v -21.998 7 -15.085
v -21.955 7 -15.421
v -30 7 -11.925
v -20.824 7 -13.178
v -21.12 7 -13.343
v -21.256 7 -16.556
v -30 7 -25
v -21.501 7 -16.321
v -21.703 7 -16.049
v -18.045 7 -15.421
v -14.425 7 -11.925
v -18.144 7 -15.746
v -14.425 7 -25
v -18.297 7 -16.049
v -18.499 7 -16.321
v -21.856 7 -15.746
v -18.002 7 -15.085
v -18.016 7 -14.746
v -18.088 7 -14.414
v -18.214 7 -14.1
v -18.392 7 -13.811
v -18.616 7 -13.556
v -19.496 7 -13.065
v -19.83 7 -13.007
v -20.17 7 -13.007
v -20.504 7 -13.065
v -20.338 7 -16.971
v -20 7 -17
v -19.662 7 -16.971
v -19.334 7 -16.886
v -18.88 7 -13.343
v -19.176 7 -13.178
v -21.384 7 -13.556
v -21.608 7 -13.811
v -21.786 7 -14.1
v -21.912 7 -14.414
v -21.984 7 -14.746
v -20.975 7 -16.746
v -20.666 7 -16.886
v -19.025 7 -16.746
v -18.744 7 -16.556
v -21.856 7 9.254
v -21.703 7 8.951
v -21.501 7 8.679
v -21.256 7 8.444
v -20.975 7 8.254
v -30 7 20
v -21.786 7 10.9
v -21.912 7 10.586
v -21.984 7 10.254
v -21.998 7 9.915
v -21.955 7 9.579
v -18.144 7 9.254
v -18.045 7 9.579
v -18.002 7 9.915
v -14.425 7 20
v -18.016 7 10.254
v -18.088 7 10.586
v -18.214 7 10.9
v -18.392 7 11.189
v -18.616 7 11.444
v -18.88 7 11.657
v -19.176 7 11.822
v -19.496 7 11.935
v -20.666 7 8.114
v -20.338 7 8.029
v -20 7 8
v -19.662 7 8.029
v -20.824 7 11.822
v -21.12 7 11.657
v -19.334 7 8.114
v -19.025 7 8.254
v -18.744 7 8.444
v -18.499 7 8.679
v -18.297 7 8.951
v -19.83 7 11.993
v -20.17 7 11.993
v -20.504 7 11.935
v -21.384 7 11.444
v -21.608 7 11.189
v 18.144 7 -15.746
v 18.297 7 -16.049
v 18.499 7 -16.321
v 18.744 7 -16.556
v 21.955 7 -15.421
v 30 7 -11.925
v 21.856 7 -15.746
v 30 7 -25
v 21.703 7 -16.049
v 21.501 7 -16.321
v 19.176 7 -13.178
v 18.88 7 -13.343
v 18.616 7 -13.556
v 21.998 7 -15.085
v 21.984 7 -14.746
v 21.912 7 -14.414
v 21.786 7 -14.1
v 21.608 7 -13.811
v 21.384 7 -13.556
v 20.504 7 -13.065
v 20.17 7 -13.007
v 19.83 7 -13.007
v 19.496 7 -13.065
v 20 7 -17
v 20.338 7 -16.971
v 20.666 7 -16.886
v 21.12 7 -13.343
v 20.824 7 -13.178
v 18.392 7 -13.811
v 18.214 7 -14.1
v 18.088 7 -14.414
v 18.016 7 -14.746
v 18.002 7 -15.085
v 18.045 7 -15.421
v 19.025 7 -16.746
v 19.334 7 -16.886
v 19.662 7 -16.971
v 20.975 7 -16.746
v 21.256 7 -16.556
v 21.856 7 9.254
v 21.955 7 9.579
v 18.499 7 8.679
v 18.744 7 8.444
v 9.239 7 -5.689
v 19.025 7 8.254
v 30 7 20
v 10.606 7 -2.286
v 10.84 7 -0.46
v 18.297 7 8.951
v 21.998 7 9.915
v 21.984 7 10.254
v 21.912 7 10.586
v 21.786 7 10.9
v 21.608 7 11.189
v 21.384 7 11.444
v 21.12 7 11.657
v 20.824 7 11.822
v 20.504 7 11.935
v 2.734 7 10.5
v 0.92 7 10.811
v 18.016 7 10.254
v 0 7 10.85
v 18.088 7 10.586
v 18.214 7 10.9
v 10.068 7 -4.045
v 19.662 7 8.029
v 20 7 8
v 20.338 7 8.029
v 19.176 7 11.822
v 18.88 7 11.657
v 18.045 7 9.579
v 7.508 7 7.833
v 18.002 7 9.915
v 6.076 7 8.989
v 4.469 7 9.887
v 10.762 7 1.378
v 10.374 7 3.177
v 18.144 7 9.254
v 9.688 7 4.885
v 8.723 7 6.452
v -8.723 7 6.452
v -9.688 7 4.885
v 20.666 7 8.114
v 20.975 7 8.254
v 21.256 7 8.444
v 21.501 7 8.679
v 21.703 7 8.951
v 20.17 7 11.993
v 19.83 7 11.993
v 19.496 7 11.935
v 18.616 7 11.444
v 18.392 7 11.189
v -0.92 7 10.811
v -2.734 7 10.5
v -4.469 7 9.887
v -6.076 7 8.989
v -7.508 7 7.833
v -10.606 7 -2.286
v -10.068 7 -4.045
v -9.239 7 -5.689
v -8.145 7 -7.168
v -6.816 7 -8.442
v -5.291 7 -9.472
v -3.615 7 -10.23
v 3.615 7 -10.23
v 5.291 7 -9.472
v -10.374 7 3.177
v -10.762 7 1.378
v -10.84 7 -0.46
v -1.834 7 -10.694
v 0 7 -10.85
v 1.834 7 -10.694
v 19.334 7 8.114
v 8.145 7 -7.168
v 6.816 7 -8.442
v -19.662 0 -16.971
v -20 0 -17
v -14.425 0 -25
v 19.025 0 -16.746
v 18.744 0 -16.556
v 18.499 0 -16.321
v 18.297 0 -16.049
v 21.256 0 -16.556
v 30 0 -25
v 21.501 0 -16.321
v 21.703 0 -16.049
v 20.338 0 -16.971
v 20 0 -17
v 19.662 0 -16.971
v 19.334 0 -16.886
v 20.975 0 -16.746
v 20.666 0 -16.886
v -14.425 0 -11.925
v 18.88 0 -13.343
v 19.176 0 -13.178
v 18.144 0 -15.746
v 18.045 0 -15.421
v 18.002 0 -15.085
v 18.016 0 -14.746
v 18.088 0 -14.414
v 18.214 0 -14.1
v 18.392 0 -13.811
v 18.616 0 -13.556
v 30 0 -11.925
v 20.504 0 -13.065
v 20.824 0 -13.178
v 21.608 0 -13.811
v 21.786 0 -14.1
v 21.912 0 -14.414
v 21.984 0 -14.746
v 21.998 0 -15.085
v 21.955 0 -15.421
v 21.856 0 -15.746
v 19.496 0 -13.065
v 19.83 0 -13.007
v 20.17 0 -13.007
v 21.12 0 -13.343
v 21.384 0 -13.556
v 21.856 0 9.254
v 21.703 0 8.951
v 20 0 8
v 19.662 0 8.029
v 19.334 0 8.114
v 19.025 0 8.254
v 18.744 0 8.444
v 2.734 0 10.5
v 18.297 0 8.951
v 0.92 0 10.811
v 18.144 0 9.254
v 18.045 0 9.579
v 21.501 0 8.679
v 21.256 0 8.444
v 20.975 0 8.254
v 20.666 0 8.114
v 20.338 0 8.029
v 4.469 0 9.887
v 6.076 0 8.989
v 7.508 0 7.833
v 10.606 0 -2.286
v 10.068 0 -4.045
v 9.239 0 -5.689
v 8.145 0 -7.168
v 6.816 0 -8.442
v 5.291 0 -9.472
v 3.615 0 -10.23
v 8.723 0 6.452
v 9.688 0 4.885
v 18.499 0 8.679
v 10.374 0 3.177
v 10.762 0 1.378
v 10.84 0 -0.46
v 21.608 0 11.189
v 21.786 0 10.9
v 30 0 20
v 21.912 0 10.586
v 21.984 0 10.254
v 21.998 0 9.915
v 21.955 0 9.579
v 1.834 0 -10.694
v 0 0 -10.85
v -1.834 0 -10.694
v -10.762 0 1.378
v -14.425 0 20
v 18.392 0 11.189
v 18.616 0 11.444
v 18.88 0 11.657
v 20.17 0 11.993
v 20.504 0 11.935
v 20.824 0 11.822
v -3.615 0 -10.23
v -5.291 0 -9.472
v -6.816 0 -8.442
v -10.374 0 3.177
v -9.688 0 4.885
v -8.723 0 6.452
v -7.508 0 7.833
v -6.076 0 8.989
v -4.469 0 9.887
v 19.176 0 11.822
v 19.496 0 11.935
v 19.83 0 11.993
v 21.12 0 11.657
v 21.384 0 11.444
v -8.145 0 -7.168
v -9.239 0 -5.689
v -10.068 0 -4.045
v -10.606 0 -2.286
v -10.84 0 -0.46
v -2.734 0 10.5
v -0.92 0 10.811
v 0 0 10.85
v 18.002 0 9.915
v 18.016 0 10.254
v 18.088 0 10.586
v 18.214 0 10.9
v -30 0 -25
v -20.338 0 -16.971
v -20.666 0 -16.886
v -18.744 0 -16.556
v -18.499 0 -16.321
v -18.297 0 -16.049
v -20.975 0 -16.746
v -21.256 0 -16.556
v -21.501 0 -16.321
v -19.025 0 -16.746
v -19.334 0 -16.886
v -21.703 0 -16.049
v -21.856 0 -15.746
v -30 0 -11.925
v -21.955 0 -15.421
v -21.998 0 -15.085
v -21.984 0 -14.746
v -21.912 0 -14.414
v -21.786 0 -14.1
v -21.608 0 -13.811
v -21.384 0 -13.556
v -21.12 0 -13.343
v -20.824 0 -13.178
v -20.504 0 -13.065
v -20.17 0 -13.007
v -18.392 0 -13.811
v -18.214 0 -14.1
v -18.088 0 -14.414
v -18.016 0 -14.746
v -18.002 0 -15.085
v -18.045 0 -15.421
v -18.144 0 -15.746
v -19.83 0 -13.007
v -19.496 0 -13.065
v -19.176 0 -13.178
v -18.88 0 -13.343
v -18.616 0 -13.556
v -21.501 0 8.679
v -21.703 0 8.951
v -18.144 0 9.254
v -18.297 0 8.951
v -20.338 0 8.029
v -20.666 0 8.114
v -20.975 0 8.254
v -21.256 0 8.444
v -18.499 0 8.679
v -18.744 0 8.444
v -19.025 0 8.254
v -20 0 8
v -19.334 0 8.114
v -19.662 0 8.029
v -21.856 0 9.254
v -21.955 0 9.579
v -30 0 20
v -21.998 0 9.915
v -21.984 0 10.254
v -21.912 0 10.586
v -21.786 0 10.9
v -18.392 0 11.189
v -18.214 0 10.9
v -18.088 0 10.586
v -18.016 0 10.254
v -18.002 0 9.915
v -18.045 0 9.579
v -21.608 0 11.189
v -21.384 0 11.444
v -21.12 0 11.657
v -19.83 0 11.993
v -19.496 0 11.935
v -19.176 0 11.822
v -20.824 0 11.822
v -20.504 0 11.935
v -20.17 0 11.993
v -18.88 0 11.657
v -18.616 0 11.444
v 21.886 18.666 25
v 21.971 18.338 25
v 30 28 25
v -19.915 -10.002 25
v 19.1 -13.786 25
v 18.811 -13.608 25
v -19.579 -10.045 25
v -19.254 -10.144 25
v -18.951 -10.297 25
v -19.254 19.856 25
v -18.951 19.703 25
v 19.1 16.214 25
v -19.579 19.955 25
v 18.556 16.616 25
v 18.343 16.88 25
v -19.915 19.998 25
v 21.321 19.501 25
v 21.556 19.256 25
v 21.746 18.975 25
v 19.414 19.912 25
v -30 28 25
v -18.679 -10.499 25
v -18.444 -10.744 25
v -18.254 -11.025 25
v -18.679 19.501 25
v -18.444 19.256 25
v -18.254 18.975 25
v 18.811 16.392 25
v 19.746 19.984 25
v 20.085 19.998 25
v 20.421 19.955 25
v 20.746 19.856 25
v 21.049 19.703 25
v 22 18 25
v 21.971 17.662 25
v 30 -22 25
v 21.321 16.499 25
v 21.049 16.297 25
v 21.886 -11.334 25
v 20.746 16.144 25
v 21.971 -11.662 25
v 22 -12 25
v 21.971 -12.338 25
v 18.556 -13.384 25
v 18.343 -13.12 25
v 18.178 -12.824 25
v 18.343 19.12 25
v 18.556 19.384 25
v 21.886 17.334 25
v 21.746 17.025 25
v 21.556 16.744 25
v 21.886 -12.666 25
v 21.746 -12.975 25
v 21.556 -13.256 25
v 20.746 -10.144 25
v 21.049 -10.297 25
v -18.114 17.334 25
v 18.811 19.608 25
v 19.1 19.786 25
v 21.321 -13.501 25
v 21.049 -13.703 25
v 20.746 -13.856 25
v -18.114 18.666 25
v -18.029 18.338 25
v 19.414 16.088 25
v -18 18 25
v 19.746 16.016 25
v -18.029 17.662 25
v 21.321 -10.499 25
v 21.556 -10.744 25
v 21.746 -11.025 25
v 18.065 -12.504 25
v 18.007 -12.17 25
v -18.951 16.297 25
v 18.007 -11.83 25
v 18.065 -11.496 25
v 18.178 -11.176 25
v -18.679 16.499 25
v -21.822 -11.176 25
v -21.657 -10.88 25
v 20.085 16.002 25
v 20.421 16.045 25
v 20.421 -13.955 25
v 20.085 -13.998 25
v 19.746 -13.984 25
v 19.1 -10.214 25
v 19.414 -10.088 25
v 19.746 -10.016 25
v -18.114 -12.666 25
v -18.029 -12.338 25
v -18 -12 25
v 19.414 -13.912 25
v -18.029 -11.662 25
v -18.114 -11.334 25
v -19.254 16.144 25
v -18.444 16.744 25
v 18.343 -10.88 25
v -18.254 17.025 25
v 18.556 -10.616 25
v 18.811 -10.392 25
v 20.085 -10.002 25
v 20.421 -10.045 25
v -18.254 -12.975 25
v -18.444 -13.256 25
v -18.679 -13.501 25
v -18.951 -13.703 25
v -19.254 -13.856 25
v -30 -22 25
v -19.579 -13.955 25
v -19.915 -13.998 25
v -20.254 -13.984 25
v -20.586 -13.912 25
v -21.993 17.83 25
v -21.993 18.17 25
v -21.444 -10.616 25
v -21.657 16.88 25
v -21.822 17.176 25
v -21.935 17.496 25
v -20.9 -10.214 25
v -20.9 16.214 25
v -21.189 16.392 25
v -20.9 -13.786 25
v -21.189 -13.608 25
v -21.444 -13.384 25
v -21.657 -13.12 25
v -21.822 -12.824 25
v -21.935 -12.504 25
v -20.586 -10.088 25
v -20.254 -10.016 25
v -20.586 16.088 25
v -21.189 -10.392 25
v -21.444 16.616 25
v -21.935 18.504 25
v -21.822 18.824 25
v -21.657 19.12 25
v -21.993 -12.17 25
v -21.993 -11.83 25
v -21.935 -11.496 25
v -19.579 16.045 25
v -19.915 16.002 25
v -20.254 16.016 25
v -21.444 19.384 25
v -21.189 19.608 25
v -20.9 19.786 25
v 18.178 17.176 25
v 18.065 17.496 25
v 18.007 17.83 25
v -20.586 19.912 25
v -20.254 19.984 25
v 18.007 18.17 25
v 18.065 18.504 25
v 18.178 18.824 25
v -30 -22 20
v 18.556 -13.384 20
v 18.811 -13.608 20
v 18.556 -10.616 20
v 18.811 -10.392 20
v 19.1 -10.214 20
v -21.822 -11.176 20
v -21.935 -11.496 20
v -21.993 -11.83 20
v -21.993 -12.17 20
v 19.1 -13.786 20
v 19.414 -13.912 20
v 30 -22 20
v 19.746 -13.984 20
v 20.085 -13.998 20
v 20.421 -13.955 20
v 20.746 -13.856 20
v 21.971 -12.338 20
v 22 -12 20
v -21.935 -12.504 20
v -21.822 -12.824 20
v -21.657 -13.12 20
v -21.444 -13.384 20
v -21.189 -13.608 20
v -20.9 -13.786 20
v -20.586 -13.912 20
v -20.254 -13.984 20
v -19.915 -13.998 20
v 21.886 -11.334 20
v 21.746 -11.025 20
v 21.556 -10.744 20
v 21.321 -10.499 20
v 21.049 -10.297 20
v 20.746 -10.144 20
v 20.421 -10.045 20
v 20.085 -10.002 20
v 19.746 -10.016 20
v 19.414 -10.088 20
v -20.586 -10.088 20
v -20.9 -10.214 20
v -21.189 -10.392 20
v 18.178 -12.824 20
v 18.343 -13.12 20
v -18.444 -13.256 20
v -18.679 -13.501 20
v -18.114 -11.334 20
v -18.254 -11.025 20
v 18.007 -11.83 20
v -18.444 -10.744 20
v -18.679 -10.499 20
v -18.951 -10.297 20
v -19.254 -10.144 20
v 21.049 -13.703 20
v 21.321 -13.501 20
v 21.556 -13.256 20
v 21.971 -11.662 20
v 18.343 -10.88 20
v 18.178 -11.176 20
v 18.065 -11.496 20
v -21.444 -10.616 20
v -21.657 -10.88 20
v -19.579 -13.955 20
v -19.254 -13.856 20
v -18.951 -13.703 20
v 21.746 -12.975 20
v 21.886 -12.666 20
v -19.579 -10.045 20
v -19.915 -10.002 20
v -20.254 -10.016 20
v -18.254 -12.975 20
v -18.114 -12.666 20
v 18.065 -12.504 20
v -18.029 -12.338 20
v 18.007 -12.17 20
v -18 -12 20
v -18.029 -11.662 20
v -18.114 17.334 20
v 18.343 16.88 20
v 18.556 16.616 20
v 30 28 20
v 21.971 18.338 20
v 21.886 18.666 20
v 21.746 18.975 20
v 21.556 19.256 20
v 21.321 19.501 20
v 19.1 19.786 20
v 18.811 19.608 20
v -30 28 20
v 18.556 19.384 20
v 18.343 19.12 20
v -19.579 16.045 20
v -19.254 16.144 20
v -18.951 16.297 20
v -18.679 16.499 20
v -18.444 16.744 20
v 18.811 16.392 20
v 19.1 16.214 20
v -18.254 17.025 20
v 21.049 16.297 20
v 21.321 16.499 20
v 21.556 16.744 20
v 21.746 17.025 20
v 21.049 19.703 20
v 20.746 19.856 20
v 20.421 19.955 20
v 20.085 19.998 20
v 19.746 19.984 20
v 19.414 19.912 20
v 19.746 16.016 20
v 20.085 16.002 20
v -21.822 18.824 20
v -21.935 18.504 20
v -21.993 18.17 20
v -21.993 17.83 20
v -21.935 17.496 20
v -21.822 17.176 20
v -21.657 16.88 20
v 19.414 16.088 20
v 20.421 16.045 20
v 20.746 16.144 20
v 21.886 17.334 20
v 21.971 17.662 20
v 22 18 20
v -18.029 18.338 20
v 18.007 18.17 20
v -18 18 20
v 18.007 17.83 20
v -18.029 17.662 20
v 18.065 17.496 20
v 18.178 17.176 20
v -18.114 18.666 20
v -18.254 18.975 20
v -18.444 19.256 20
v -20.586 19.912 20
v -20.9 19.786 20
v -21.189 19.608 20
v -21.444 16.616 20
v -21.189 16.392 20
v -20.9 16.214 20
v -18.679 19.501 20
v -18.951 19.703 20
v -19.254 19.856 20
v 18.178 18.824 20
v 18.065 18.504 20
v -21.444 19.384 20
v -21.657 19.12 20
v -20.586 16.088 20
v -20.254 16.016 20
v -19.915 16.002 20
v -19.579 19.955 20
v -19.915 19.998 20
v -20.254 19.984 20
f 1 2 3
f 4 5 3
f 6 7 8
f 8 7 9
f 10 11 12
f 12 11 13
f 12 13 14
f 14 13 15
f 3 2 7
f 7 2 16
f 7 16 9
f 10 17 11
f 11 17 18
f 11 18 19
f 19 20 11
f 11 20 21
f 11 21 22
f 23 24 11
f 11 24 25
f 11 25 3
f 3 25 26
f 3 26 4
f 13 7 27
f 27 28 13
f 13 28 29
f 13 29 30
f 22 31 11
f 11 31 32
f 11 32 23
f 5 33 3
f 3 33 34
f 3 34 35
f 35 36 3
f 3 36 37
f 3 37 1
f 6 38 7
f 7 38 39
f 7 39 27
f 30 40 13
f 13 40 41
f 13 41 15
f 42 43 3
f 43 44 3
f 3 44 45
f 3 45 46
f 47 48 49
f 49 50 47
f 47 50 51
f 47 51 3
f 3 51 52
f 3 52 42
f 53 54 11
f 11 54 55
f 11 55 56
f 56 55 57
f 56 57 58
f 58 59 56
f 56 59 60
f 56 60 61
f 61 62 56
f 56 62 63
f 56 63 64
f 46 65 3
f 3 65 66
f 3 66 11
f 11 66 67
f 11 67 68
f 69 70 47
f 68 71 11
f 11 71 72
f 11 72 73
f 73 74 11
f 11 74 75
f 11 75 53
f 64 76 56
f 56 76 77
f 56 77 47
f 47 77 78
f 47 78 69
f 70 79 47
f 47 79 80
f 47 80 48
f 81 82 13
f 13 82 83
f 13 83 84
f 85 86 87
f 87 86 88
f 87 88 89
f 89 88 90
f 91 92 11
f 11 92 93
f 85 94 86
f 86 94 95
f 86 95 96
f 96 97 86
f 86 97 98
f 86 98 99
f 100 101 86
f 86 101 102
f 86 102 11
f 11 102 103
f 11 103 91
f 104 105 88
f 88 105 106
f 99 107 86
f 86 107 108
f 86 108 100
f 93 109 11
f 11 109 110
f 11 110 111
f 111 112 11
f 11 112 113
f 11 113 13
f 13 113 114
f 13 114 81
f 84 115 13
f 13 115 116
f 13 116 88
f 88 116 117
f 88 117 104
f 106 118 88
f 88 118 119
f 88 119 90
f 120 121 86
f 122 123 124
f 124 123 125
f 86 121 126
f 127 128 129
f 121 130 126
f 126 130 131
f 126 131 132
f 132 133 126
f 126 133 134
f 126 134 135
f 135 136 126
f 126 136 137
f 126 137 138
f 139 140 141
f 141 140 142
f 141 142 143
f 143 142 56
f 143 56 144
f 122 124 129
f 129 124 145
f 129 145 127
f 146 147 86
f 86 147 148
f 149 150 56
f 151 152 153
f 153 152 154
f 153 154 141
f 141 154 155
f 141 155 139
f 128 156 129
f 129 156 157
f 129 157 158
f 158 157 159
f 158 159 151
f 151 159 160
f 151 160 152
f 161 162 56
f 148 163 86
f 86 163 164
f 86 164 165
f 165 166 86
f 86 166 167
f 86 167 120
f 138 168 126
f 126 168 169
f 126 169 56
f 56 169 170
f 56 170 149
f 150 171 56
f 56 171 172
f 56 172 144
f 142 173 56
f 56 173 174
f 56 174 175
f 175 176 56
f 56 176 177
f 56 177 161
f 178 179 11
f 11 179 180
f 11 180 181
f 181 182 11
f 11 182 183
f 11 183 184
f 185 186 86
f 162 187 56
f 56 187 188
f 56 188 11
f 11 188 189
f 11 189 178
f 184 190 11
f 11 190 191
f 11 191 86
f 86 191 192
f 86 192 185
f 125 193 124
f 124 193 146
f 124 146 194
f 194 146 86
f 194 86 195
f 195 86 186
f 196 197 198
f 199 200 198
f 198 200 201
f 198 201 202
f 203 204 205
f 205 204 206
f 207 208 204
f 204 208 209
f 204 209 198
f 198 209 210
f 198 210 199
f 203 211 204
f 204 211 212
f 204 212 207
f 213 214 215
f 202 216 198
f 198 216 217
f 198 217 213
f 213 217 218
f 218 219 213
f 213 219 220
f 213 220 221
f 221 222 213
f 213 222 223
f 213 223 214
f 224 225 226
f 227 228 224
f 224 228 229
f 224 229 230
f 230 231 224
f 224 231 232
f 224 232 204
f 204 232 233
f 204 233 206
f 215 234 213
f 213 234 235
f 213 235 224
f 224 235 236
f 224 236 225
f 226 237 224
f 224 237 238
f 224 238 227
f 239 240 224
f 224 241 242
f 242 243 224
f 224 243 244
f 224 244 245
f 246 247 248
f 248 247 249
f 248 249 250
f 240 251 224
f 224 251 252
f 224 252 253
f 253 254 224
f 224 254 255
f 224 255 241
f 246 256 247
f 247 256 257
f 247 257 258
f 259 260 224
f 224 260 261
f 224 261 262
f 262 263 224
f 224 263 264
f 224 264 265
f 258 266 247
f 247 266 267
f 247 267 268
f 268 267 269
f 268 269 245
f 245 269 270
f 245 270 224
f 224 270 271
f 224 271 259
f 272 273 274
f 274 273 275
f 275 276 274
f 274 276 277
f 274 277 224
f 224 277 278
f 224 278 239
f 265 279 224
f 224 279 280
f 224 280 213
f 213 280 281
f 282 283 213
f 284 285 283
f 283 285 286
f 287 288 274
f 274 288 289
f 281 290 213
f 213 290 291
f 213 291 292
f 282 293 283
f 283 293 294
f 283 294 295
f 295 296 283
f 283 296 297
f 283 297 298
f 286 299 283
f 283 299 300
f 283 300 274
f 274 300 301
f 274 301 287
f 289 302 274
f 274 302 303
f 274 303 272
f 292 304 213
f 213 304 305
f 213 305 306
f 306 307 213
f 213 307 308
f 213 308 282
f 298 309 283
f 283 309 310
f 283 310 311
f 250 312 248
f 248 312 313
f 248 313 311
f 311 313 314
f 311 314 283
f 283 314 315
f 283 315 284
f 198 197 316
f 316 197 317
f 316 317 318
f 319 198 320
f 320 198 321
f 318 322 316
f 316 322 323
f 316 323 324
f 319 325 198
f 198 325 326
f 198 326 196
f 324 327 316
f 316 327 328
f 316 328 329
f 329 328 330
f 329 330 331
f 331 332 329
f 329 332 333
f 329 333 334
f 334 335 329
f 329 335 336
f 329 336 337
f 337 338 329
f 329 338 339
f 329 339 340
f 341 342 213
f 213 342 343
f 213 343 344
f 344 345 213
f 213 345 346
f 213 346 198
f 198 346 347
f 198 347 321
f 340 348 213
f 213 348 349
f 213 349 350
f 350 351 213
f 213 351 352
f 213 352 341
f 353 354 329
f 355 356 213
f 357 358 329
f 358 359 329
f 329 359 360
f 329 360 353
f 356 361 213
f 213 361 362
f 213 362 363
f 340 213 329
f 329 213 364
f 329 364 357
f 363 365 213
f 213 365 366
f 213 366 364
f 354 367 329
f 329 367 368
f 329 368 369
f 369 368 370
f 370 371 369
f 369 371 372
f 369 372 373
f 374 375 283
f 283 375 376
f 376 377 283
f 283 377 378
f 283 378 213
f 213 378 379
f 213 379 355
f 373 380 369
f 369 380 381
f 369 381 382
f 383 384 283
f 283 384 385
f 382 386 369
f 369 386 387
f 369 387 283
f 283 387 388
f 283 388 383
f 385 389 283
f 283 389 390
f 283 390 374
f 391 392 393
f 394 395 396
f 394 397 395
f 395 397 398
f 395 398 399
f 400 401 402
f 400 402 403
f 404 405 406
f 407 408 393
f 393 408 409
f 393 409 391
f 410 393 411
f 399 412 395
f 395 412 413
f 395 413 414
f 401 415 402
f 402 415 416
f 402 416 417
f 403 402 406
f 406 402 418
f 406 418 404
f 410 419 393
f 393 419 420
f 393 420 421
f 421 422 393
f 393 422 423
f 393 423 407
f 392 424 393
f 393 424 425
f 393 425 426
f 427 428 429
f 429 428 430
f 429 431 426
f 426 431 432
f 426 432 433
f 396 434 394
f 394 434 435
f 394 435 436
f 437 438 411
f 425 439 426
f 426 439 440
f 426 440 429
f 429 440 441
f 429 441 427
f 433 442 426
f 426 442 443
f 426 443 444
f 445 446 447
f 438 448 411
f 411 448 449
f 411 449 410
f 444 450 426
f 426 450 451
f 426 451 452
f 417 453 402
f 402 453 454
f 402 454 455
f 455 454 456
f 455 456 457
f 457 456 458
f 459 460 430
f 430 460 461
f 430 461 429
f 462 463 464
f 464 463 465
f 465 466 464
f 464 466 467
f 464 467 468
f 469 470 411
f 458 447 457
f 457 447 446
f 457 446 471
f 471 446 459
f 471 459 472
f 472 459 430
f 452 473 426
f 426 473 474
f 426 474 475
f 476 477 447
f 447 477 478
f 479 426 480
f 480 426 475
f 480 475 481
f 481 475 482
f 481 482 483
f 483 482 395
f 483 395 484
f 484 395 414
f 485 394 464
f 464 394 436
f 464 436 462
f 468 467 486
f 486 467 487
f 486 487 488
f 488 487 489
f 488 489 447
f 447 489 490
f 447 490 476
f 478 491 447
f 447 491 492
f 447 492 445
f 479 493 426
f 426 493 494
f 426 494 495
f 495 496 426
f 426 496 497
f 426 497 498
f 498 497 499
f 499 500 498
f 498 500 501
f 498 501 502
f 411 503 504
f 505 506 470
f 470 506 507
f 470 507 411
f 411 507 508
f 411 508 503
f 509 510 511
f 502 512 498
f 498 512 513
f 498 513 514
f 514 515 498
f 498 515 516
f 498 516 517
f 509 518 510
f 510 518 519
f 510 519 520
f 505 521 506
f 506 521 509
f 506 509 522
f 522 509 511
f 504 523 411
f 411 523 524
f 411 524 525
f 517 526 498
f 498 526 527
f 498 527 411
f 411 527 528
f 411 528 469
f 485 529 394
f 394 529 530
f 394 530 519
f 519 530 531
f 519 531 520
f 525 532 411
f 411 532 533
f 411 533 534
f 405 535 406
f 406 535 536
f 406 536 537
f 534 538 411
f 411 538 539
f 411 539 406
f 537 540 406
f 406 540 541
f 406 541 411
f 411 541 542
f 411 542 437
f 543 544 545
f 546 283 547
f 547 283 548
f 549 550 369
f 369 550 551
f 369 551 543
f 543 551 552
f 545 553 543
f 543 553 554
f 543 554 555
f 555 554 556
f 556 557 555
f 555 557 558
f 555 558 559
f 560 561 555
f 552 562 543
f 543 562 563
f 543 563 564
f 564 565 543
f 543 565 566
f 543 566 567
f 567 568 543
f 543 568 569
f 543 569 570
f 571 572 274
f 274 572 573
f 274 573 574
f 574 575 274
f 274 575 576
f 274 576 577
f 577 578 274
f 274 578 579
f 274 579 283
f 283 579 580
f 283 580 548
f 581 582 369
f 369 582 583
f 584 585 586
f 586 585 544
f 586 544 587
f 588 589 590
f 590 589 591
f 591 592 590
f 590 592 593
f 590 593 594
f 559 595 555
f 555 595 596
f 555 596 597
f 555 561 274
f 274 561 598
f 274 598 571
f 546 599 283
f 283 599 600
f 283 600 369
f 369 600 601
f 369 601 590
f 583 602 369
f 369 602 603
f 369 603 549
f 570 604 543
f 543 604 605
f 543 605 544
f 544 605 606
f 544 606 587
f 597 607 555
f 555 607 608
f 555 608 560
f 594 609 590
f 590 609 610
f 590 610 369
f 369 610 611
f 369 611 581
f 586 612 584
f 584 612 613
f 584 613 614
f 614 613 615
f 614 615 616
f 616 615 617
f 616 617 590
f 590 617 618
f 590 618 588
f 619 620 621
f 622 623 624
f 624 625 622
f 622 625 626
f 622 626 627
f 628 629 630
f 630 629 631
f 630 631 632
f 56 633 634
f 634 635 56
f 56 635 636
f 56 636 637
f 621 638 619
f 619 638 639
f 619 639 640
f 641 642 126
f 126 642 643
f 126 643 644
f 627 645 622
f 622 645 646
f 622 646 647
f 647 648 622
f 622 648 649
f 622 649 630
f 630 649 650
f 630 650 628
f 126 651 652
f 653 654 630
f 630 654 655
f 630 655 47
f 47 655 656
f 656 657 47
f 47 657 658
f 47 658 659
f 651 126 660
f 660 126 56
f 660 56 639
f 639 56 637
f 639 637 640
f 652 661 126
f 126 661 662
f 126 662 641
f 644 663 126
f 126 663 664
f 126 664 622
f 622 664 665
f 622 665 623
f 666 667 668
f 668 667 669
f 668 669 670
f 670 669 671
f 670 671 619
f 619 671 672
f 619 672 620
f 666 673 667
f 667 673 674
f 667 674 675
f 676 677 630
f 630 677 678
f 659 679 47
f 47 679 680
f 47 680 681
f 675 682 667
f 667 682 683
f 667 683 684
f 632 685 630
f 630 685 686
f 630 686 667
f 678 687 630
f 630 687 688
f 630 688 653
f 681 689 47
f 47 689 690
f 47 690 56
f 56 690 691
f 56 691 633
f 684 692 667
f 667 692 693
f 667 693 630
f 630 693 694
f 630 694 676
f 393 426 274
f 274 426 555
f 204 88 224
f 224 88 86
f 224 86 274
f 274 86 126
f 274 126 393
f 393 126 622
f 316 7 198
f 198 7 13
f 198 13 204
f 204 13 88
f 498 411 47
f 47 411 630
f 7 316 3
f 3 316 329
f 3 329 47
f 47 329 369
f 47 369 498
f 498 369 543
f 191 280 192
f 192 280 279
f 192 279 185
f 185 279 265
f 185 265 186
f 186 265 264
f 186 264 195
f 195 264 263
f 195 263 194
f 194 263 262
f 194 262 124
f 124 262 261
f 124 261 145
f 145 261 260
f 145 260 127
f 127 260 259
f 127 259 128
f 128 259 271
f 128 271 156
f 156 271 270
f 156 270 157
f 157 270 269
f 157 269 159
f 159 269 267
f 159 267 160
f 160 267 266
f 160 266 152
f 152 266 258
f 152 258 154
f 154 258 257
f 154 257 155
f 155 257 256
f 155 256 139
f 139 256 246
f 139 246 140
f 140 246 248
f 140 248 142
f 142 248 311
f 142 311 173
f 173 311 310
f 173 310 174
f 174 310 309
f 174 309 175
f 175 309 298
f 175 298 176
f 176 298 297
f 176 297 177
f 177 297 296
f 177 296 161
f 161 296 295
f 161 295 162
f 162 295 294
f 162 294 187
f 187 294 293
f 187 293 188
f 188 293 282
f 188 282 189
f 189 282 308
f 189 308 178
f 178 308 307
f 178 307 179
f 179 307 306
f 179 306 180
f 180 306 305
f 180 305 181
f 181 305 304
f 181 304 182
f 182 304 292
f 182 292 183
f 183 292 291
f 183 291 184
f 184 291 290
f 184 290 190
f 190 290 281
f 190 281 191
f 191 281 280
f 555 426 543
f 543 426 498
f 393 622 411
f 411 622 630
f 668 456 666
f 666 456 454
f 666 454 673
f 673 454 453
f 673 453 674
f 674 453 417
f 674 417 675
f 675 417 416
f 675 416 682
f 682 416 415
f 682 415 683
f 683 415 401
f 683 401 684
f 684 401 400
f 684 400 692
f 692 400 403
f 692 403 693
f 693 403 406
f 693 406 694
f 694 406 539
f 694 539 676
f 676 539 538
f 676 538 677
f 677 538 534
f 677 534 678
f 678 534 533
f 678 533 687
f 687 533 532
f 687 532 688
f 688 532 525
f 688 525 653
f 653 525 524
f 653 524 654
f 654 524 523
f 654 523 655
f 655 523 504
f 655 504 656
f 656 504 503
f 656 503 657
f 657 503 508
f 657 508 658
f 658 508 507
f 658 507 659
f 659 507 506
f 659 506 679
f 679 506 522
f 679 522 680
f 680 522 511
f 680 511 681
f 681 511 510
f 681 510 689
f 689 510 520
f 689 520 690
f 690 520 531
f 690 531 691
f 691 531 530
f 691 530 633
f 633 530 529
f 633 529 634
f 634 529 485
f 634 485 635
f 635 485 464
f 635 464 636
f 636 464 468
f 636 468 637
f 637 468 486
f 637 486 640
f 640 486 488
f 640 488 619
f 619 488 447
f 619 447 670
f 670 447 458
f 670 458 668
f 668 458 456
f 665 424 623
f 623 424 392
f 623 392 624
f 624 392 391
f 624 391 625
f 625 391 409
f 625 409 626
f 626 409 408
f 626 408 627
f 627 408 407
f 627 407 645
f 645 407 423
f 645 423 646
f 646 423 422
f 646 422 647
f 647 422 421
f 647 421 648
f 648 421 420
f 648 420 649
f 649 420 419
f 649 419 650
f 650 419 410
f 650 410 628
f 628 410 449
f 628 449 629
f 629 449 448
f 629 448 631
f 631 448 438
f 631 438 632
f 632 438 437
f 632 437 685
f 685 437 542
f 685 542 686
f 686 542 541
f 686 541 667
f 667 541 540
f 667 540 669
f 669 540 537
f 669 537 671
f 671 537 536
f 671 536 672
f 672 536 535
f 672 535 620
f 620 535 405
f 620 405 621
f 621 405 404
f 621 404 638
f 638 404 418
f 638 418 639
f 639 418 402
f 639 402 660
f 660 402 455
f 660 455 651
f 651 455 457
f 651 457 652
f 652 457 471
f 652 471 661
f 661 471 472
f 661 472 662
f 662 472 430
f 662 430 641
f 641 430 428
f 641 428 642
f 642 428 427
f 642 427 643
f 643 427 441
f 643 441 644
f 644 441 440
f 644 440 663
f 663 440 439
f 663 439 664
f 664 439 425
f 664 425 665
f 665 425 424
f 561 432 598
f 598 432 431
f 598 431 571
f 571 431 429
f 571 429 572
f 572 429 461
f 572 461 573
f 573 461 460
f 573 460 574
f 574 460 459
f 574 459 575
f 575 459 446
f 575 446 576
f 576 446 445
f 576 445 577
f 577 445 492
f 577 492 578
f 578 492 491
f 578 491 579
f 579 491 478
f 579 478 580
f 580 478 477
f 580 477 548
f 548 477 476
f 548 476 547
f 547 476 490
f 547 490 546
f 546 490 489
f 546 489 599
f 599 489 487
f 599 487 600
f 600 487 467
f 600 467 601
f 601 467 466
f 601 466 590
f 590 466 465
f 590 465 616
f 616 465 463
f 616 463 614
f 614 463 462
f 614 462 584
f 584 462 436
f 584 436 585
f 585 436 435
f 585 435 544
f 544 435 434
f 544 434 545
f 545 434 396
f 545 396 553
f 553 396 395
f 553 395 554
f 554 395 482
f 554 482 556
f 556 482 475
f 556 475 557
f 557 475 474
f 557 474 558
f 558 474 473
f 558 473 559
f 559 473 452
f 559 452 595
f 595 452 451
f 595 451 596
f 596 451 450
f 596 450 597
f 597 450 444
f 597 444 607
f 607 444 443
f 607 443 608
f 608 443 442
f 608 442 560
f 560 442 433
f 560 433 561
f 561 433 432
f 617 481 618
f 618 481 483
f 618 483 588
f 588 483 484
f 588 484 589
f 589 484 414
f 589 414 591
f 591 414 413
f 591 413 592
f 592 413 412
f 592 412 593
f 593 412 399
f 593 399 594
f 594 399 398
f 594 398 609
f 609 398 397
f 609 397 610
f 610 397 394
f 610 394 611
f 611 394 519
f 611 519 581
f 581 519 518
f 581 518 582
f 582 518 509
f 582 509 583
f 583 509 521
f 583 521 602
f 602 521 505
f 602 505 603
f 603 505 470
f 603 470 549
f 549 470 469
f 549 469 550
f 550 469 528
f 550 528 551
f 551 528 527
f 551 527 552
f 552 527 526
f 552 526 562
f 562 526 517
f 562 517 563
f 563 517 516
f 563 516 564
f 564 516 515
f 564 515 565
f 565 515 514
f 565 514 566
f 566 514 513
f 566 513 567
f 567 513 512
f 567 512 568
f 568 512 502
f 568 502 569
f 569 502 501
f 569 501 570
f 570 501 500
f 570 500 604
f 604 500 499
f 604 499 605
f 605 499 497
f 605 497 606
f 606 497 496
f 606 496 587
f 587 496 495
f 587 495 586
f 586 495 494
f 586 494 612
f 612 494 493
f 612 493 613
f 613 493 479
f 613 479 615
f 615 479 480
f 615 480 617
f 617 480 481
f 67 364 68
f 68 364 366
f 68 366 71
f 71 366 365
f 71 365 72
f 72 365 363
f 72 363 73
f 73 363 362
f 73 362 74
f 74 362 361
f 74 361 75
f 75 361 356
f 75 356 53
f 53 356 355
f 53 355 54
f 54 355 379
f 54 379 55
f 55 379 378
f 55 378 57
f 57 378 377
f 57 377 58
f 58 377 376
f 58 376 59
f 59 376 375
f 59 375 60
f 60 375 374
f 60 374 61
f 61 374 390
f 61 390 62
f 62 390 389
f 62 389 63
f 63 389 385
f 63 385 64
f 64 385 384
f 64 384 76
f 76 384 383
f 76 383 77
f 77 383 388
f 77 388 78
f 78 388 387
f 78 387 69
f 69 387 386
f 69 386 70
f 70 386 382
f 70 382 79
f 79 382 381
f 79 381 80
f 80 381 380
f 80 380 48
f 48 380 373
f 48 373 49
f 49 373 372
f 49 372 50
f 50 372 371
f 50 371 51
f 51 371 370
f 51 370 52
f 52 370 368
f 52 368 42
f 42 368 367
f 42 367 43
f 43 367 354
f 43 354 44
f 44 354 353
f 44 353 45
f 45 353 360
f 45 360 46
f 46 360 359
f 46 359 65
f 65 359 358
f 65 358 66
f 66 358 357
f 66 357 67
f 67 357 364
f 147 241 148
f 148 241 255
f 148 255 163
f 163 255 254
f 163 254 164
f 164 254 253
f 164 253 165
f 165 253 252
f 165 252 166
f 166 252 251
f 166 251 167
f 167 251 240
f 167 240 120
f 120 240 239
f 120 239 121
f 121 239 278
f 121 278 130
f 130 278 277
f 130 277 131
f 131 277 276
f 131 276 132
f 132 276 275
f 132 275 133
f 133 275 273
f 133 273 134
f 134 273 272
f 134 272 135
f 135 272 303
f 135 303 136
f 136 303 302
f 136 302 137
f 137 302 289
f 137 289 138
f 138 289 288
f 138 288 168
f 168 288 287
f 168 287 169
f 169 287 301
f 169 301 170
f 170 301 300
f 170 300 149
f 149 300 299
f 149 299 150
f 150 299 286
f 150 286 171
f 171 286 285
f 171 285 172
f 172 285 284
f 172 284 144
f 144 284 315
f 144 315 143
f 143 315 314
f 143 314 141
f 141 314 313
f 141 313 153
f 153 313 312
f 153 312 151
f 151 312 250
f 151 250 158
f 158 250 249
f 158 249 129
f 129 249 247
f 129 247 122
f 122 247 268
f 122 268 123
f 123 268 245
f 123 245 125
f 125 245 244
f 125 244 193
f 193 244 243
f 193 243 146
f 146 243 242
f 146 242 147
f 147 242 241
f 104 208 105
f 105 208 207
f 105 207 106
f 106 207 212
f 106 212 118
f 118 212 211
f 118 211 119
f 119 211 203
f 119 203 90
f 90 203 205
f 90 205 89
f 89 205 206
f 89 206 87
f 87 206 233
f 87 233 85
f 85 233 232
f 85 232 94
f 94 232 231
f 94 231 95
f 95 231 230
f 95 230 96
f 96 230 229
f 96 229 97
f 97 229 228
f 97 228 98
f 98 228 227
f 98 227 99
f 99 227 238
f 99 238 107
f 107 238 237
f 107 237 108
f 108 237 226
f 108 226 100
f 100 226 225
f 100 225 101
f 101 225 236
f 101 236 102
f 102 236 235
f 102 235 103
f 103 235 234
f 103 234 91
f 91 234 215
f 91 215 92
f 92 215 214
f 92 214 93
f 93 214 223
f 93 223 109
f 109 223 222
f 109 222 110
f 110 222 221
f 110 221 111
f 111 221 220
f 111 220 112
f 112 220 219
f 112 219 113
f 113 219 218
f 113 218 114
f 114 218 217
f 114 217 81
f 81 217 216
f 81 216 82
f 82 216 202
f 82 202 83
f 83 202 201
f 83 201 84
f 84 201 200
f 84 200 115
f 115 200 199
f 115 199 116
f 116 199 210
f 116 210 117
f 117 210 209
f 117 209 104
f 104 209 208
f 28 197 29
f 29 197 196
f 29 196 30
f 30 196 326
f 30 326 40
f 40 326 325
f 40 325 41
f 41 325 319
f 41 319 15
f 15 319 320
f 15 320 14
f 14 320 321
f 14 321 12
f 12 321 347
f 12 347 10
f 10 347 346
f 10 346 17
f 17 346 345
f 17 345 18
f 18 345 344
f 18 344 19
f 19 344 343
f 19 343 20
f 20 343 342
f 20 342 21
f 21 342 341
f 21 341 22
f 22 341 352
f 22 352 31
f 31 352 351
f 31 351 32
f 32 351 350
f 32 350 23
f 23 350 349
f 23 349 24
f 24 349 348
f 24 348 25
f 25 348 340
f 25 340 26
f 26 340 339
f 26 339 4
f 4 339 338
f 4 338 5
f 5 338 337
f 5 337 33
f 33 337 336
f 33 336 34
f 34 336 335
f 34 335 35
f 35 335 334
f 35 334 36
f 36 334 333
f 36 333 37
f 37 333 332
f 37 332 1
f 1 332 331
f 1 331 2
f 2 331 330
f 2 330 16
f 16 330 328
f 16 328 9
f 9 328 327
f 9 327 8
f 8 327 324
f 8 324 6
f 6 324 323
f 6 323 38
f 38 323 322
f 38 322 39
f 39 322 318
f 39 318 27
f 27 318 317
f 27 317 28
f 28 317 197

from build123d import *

# Parameters (mm, degrees)
SKETCH_2_W          = 60
SKETCH_2_H          = 50
SKETCH_2_R          = 10.85
EXTRUDE_1_DEPTH     = 7
SKETCH_4_W          = 60
SKETCH_4_H          = 5
EXTRUDE_2_DEPTH     = 25
SKETCH_6_R          = 2
CUT_EXTRUDE_1_DEPTH = 50
SKETCH_8_R          = 2
CUT_EXTRUDE_4_DEPTH = 50


with BuildPart() as part:
    # 草图2 → 凸台-拉伸1 (new body)
    with BuildSketch(Plane(origin=(0, 0, 0), x_dir=(1, 0, 0), z_dir=(0, 1, 0))):
        Rectangle(SKETCH_2_W, SKETCH_2_H)
        with Locations(Location((0, 0, 0), (0, 0, 270))):
            Circle(SKETCH_2_R, mode=Mode.SUBTRACT)
    extrude(amount=EXTRUDE_1_DEPTH)

    # 草图4 → 凸台-拉伸2 (add, symmetric)
    with BuildSketch(Plane(origin=(0, 3, 0), x_dir=(1, 0, 0), z_dir=(0, 1, 0))):
        with Locations((0, -22.5)):
            Rectangle(SKETCH_4_W, SKETCH_4_H)
    extrude(amount=EXTRUDE_2_DEPTH, both=True)

    # 草图6 → 切除-拉伸1 (cut)
    with BuildSketch(Plane.XY.offset(25)):
        with BuildLine():
            ThreePointArc((-18, 18), (-18.585786438, 19.414213562), (-20, 20))
            Line((-20, 20), (-20, 18))
            Line((-20, 18), (-22, 18))
            ThreePointArc((-22, 18), (-20, 16), (-18, 18))
        make_face()
        with BuildLine():
            Line((-20, 18), (-20, 20))
            ThreePointArc((-20, 20), (-21.414213562, 19.414213562), (-22, 18))
            Line((-22, 18), (-20, 18))
        make_face()
        with Locations((20, 18)):
            Circle(SKETCH_6_R)
        with Locations((-20, -12)):
            Circle(SKETCH_6_R)
        with Locations((20, -12)):
            Circle(SKETCH_6_R)
    extrude(amount=-CUT_EXTRUDE_1_DEPTH, mode=Mode.SUBTRACT)

    # 草图8 → 切除-拉伸4 (cut)
    with BuildSketch(Plane.XZ):
        with BuildLine():
            ThreePointArc((-18, 10), (-18.585786438, 11.414213562), (-20, 12))
            Line((-20, 12), (-20, 10))
            Line((-20, 10), (-22, 10))
            ThreePointArc((-22, 10), (-20, 8), (-18, 10))
        make_face()
        with BuildLine():
            Line((-20, 10), (-20, 12))
            ThreePointArc((-20, 12), (-21.414213562, 11.414213562), (-22, 10))
            Line((-22, 10), (-20, 10))
        make_face()
        with Locations(Location((20, 10, 0), (0, 0, 270))):
            Circle(SKETCH_8_R)
        with Locations(Location((20, -15, 0), (0, 0, 270))):
            Circle(SKETCH_8_R)
        with Locations(Location((-20, -15, 0), (0, 0, 270))):
            Circle(SKETCH_8_R)
    extrude(amount=-CUT_EXTRUDE_4_DEPTH, mode=Mode.SUBTRACT)


solid = part.part
